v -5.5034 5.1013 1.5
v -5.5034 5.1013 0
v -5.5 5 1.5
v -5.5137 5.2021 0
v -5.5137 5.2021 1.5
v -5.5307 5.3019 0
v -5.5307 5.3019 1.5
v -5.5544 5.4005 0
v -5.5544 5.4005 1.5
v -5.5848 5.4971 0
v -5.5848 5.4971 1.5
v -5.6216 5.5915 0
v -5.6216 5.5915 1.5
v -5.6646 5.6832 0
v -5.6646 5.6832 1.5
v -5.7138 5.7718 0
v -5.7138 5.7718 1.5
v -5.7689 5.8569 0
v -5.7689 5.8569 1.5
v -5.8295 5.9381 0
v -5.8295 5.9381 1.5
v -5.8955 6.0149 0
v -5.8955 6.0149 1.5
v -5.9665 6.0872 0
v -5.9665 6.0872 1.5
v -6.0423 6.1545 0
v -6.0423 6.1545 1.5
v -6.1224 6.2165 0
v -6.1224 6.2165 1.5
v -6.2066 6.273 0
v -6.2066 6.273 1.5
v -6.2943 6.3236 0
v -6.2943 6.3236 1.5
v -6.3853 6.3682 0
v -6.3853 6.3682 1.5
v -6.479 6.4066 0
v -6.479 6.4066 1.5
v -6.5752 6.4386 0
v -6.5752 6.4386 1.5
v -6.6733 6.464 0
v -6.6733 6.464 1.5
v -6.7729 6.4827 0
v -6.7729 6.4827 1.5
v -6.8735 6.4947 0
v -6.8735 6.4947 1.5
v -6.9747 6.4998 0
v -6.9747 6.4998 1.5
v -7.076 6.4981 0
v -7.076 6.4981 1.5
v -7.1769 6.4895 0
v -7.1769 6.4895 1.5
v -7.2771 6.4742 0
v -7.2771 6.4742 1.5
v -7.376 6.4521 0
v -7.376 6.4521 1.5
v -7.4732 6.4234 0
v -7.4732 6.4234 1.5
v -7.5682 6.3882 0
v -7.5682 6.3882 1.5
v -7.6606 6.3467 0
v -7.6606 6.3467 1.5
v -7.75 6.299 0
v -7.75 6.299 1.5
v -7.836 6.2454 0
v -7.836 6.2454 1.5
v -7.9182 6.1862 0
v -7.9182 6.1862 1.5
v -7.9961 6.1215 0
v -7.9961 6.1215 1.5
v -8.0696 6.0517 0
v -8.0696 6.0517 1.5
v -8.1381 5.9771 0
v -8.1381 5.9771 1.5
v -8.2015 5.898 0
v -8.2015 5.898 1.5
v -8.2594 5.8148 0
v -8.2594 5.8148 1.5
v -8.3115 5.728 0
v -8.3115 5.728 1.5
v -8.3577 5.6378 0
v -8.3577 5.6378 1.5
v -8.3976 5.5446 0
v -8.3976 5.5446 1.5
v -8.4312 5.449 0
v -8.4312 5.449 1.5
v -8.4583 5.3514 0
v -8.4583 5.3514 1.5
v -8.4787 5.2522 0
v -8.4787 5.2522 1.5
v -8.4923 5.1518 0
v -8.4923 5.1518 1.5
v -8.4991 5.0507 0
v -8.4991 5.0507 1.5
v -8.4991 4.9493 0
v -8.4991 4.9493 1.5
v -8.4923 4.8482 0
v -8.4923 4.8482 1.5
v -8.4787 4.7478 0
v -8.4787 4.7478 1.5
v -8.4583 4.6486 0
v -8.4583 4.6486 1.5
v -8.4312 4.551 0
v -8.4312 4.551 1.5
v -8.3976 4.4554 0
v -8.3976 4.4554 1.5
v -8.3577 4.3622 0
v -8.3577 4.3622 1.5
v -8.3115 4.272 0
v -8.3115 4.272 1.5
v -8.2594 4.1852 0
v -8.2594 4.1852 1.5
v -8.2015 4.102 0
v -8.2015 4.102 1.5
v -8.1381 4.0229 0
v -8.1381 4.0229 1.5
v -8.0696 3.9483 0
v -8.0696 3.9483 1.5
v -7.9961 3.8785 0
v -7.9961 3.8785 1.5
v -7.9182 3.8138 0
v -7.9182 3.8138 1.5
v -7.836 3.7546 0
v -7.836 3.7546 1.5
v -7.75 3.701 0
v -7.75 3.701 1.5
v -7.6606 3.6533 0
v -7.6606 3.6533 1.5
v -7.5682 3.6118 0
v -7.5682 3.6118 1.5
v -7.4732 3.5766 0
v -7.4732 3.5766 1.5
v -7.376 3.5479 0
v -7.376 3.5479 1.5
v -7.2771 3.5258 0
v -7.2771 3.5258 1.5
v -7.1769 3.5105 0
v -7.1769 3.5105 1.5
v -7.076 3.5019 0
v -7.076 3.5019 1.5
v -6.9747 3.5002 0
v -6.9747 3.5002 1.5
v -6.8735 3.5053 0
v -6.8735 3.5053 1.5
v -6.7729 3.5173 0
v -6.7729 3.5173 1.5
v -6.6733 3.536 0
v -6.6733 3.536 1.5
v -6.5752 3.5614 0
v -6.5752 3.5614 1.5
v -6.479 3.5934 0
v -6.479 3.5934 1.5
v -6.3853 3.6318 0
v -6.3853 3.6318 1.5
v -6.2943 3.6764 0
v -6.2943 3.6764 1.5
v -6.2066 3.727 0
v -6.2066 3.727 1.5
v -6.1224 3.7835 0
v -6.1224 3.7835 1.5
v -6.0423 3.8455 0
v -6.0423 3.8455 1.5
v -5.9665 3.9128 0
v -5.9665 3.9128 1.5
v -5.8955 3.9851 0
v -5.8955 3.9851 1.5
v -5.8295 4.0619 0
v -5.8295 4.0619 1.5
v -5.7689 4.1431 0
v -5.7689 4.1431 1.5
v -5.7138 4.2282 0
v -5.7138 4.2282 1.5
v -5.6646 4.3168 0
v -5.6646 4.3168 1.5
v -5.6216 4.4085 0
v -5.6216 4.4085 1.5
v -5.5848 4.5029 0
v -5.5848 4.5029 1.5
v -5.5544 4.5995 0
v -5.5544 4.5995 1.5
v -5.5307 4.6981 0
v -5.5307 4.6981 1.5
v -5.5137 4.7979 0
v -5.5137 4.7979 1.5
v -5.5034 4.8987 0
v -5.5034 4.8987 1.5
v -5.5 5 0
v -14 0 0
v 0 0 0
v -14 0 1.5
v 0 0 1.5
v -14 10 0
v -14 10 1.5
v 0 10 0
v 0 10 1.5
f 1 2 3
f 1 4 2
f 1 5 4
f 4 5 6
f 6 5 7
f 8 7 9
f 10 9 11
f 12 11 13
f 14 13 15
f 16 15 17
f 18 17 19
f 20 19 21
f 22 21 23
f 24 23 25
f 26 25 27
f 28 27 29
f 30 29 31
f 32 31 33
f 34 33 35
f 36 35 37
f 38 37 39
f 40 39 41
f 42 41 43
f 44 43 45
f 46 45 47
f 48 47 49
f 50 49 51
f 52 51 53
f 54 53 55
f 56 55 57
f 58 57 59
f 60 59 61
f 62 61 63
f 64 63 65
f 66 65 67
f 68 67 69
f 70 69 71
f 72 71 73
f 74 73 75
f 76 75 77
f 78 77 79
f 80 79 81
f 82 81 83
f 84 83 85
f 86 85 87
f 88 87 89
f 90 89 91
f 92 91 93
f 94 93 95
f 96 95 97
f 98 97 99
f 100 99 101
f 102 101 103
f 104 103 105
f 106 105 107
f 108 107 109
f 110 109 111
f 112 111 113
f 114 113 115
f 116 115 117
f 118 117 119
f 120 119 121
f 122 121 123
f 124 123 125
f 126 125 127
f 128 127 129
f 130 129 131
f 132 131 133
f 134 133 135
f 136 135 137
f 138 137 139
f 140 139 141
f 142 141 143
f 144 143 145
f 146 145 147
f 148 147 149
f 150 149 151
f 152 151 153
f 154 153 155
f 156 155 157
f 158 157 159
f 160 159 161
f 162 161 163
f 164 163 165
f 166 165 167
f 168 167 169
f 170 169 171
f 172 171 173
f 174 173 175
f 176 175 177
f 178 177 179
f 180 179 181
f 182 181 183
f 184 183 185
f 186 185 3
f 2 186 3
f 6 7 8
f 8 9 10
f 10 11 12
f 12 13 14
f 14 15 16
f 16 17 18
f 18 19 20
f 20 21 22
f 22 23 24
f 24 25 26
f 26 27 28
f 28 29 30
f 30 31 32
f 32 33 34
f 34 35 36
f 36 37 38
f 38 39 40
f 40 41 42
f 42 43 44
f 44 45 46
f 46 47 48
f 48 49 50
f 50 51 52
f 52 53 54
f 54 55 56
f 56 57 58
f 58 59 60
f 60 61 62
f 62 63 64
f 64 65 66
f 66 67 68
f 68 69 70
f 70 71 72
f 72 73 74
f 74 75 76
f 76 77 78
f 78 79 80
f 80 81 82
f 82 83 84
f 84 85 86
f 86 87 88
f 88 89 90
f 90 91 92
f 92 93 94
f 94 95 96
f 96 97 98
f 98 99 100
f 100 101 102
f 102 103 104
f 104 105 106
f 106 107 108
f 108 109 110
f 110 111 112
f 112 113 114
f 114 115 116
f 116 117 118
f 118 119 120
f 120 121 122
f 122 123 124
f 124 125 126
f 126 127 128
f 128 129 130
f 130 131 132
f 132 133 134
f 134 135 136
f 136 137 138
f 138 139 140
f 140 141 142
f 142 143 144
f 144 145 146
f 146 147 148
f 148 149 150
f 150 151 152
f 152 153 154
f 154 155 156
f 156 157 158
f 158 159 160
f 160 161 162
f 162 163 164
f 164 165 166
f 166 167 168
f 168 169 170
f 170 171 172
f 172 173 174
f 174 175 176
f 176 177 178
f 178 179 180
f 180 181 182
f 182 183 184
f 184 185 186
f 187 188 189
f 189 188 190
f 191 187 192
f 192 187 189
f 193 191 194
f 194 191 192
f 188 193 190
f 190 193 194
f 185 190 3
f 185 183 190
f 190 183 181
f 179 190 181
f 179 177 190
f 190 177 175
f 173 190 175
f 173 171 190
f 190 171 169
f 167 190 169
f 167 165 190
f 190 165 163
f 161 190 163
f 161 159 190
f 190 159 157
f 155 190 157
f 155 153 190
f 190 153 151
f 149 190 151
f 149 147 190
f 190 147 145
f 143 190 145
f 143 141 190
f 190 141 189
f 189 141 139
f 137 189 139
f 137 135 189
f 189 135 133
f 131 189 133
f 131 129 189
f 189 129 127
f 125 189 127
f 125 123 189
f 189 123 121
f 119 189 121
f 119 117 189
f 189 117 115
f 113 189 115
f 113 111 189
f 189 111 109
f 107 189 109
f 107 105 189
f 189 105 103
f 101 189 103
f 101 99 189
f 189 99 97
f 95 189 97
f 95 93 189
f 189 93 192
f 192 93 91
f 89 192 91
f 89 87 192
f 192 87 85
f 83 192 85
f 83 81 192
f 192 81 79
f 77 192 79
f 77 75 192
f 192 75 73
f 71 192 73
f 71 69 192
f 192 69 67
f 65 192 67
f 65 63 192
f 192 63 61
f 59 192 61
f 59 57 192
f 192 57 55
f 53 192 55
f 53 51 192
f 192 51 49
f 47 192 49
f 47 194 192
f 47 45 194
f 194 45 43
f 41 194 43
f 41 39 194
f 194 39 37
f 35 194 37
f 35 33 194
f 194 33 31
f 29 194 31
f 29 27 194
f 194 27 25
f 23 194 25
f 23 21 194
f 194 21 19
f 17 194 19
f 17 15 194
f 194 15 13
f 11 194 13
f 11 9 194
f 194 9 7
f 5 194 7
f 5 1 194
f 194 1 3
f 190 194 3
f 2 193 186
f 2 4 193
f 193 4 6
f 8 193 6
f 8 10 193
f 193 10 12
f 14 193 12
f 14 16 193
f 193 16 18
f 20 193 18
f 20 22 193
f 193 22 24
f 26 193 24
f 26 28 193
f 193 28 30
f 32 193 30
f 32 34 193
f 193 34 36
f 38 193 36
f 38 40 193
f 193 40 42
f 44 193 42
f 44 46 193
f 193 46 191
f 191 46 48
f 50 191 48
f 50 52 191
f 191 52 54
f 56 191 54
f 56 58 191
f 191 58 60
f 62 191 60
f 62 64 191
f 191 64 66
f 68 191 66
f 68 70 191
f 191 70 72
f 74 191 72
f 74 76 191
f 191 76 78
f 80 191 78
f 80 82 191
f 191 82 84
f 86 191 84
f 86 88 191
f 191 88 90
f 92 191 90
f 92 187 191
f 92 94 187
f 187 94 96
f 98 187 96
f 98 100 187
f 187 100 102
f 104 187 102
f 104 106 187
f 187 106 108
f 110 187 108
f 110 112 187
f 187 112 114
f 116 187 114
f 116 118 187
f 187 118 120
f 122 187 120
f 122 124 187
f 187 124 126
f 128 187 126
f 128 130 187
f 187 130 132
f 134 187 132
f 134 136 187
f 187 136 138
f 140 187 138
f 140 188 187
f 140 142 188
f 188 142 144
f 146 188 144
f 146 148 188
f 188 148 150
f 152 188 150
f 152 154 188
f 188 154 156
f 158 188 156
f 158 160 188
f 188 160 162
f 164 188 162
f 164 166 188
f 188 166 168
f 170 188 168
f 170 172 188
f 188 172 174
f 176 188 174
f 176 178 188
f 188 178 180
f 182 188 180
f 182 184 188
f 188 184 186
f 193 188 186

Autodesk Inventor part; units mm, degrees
ref_plane "YZ Plane" through (0, 0, 0) normal (1, 0, 0) x (0, 1, 0)
ref_plane "XZ Plane" through (0, 0, 0) normal (0, 1, 0) x (-1, 0, 0)
ref_plane "XY Plane" through (0, 0, 0) normal (0, 0, 1) x (1, 0, 0)
sketch "Sketch1" plane through (0, 0, 0) normal (0, 0, 1) x (1, 0, 0)
  line L0 (-14, -0.25) -> (0, -0.25) projected
  line L1 (0, -0.25) -> (0, 0) projected
  line L2 (0, 0) -> (0, 10) projected
  line L3 (0, 10) -> (0, 10.25) projected
  line L4 (0, 10.25) -> (-14, 10.25) projected
  line L5 (-14, 10.25) -> (-14, -0.25) projected
  circle A0 centre (-7, 5) radius 1.5 projected
  line L6 (0, 0) -> (-14, 0)
  line L7 (-14, 0) -> (-14, 10)
  line L8 (-14, 10) -> (0, 10)
  line L9 (0, 10) -> (0, 0)
  dimension "d0" = 0.25
  dimension "d1" = 0.25
extrude "Extrusion1" add sketch "Sketch1" along normal blind 1.5 contours L5 L8 L2 L6
properties part number "arm_plate"
